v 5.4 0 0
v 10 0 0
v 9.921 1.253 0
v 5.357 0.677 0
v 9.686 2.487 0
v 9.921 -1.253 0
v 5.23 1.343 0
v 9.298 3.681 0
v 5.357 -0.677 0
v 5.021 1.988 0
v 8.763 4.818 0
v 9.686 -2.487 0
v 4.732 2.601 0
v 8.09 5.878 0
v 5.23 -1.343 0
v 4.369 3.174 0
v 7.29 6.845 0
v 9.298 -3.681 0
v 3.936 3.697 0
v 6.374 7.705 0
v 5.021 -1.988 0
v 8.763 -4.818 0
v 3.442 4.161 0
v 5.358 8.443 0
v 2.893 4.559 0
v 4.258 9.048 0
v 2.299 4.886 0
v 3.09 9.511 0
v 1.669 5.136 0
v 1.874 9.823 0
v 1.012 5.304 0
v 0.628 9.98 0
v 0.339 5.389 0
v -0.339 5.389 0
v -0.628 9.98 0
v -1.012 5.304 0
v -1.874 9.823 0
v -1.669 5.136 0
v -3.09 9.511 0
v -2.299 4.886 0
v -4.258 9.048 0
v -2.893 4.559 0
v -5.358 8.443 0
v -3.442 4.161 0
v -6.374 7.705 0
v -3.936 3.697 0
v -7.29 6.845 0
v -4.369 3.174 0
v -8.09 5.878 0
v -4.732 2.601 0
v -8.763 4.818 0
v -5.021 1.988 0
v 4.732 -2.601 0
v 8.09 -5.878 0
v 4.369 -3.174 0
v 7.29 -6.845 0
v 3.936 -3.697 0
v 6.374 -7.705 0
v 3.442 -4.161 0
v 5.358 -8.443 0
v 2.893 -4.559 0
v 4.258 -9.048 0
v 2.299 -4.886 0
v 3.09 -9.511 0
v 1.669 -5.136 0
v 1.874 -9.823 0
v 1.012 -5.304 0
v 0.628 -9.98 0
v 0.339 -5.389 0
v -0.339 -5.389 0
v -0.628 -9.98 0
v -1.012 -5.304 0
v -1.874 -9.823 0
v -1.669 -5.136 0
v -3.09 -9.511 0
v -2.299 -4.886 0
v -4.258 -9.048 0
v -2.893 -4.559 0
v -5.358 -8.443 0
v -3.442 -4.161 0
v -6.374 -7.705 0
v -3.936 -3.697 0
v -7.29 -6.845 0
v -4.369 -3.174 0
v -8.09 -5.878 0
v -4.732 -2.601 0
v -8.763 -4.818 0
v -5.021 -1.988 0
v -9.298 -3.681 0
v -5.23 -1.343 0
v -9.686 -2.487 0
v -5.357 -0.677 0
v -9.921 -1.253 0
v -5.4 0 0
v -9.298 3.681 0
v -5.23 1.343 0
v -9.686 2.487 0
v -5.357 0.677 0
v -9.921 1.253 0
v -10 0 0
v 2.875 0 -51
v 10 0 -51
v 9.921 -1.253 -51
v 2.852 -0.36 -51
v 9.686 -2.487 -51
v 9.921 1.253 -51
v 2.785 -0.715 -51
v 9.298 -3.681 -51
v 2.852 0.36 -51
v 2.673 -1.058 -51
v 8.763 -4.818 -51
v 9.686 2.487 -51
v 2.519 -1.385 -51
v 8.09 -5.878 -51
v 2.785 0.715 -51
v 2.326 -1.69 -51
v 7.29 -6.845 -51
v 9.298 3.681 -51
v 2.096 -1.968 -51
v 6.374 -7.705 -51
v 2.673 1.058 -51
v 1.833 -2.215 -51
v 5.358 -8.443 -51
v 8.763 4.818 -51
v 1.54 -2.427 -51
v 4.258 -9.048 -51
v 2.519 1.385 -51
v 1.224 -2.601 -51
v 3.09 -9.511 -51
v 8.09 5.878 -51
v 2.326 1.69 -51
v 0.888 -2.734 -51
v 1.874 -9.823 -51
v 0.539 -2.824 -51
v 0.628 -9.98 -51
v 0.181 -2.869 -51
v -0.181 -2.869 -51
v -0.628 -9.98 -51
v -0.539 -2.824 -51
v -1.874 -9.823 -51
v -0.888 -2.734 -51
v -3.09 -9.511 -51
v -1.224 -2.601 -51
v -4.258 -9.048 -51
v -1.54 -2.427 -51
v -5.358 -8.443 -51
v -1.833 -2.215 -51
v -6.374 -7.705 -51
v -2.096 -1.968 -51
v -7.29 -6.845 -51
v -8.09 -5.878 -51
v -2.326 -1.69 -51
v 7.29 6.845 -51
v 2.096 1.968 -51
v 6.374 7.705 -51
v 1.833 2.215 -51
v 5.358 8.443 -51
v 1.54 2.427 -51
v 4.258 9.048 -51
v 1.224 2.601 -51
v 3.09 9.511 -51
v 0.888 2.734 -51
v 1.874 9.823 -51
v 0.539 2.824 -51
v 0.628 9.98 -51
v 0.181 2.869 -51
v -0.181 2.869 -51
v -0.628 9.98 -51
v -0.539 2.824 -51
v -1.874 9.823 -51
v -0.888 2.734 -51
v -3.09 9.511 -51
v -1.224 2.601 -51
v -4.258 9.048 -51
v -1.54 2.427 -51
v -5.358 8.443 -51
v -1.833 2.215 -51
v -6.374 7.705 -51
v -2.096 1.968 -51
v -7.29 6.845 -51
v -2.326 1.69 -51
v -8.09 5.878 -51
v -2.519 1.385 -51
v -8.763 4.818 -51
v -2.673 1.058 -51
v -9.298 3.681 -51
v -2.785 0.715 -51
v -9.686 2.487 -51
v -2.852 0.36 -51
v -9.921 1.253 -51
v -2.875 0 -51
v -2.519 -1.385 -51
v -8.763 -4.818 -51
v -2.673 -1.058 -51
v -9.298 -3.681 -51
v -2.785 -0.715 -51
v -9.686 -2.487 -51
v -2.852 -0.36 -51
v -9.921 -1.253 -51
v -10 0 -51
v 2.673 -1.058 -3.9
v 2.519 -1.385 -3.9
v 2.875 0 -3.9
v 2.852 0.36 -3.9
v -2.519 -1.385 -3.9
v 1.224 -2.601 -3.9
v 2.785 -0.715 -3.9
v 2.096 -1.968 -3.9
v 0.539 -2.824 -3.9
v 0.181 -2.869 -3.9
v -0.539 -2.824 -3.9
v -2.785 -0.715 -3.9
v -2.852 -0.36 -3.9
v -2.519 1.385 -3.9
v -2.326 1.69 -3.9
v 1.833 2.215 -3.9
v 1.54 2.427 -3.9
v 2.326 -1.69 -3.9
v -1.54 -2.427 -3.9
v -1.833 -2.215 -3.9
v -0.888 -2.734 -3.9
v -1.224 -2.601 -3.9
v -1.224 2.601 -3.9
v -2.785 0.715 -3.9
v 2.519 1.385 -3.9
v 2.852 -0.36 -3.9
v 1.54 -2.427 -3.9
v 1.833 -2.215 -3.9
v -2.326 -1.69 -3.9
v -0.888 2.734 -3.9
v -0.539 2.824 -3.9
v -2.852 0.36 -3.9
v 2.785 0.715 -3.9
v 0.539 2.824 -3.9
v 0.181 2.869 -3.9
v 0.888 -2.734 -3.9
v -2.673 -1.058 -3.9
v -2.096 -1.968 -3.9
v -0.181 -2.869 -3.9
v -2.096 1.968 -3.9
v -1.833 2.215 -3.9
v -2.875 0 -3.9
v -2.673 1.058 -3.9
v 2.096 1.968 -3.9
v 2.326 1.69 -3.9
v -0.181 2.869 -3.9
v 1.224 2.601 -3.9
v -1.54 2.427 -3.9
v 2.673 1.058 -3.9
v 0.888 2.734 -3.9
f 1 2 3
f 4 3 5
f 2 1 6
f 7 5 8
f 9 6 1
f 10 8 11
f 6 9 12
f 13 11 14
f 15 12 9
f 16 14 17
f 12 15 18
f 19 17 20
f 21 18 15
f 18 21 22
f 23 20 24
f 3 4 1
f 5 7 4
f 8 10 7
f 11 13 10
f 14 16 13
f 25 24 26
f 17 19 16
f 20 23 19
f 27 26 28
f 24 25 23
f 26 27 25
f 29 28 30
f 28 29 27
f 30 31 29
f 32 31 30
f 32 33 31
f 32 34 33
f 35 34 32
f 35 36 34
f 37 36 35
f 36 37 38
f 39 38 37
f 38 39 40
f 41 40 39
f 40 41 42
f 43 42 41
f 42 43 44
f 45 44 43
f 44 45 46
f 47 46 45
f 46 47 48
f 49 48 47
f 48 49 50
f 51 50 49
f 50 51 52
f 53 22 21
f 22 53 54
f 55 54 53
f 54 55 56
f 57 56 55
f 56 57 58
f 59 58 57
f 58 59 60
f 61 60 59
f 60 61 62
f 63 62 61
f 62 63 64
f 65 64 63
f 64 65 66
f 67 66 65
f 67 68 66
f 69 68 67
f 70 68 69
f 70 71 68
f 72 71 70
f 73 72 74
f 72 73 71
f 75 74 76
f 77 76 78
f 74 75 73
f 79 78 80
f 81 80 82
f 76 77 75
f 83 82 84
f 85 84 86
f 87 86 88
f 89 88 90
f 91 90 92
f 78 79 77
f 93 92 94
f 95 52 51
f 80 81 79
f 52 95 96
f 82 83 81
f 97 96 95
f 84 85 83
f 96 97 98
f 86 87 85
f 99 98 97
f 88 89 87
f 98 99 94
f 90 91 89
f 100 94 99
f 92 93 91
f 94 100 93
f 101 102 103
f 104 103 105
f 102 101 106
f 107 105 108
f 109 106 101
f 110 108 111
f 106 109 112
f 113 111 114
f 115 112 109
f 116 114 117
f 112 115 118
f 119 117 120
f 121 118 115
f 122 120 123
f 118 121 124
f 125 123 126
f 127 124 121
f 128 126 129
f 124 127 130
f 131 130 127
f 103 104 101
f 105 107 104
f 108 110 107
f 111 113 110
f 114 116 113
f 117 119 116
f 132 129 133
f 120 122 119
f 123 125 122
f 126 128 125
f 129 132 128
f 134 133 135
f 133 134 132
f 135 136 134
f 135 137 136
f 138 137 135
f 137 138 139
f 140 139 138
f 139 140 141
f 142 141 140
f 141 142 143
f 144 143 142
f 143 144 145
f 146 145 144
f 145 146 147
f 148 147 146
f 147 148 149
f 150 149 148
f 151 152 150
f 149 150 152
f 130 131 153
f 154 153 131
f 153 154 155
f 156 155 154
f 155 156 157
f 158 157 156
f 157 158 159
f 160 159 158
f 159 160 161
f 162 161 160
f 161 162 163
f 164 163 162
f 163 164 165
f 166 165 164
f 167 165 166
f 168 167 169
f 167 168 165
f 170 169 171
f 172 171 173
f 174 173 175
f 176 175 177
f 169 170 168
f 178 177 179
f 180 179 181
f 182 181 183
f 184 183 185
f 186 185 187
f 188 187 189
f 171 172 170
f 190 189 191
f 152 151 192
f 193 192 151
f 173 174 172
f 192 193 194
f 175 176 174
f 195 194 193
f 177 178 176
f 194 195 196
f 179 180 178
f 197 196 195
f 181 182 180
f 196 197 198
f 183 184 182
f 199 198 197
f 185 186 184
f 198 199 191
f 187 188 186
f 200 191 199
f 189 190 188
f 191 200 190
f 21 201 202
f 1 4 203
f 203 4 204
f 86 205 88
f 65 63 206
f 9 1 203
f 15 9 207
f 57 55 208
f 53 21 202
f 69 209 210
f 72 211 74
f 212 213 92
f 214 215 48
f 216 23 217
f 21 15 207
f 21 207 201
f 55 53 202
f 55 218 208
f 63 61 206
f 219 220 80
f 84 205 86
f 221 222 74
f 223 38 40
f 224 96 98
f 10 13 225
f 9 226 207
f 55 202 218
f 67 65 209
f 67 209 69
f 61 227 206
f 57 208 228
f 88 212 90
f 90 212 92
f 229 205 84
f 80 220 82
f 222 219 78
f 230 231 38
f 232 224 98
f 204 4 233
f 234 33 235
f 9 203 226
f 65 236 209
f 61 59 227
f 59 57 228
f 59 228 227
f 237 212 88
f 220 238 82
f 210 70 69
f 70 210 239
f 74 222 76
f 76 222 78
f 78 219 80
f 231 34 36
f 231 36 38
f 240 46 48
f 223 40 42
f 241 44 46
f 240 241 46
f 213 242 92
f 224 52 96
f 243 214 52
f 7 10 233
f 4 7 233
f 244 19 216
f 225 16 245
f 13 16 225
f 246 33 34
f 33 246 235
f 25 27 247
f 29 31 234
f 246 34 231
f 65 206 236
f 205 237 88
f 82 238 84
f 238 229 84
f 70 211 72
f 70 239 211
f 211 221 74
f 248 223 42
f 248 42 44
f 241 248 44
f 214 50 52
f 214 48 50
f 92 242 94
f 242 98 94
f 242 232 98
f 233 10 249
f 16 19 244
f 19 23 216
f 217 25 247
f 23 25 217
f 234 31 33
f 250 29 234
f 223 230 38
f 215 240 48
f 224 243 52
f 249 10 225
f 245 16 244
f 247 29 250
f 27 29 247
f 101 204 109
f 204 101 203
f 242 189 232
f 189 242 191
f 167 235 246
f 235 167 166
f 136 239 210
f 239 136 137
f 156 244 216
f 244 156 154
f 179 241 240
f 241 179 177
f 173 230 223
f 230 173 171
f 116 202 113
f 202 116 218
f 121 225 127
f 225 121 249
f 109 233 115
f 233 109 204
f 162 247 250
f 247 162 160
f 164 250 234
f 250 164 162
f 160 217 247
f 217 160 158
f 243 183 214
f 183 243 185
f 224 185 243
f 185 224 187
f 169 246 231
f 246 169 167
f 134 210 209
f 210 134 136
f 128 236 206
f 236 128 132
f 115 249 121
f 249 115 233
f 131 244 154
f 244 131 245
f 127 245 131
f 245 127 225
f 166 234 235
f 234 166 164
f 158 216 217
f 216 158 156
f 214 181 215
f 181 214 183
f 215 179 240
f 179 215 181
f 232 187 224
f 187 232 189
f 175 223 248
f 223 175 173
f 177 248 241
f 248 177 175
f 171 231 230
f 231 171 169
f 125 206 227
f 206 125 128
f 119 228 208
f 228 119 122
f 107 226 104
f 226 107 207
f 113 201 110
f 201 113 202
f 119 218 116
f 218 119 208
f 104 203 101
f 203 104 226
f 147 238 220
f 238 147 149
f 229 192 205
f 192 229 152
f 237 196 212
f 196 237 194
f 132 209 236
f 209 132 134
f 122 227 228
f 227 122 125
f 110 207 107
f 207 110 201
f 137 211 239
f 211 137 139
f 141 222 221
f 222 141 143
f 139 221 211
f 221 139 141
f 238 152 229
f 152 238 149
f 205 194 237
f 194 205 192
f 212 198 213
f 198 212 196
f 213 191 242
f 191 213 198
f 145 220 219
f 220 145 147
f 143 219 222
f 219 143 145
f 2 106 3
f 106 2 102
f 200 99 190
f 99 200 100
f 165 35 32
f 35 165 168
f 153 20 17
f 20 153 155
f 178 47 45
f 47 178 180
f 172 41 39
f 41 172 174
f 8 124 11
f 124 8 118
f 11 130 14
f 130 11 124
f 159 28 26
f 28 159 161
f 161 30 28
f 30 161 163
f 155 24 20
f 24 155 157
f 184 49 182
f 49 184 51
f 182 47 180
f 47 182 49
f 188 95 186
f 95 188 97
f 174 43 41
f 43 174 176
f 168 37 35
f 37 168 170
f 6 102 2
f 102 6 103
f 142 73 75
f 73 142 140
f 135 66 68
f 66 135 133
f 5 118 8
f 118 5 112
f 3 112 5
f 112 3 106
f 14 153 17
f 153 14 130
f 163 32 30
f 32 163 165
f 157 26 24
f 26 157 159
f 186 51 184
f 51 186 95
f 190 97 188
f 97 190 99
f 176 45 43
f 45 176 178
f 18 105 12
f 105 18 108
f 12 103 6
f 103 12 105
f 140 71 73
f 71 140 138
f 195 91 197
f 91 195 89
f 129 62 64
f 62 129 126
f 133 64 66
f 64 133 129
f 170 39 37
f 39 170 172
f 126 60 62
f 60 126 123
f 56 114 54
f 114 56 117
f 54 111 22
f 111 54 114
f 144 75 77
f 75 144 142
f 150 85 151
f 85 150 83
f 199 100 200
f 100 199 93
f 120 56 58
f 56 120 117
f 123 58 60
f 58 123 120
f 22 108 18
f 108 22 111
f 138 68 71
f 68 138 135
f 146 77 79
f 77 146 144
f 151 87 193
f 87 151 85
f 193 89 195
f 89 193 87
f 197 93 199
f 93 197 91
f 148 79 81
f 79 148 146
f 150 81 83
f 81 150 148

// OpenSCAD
$fn = 50;


difference() {
	union() {
		translate(v = [0, 0, -51.0000000000]) {
			cylinder(h = 51, r = 10.0000000000);
		}
		cylinder(h = 0, r = 13.0000000000);
	}
	union() {
		translate(v = [0, 0, 0]) {
			rotate(a = [0, 0, 0]) {
				difference() {
					union() {
						#translate(v = [0, 0, -51.0000000000]) {
							cylinder(h = 51, r = 2.6000000000);
						}
						#translate(v = [0, 0, -3.9000000000]) {
							cylinder(h = 3.9000000000, r1 = 2.8750000000, r2 = 5.4000000000);
						}
						#translate(v = [0, 0, -51.0000000000]) {
							cylinder(h = 51, r = 2.8750000000);
						}
						#translate(v = [0, 0, -51.0000000000]) {
							cylinder(h = 51, r = 2.6000000000);
						}
					}
					union();
				}
			}
		}
	}
}
